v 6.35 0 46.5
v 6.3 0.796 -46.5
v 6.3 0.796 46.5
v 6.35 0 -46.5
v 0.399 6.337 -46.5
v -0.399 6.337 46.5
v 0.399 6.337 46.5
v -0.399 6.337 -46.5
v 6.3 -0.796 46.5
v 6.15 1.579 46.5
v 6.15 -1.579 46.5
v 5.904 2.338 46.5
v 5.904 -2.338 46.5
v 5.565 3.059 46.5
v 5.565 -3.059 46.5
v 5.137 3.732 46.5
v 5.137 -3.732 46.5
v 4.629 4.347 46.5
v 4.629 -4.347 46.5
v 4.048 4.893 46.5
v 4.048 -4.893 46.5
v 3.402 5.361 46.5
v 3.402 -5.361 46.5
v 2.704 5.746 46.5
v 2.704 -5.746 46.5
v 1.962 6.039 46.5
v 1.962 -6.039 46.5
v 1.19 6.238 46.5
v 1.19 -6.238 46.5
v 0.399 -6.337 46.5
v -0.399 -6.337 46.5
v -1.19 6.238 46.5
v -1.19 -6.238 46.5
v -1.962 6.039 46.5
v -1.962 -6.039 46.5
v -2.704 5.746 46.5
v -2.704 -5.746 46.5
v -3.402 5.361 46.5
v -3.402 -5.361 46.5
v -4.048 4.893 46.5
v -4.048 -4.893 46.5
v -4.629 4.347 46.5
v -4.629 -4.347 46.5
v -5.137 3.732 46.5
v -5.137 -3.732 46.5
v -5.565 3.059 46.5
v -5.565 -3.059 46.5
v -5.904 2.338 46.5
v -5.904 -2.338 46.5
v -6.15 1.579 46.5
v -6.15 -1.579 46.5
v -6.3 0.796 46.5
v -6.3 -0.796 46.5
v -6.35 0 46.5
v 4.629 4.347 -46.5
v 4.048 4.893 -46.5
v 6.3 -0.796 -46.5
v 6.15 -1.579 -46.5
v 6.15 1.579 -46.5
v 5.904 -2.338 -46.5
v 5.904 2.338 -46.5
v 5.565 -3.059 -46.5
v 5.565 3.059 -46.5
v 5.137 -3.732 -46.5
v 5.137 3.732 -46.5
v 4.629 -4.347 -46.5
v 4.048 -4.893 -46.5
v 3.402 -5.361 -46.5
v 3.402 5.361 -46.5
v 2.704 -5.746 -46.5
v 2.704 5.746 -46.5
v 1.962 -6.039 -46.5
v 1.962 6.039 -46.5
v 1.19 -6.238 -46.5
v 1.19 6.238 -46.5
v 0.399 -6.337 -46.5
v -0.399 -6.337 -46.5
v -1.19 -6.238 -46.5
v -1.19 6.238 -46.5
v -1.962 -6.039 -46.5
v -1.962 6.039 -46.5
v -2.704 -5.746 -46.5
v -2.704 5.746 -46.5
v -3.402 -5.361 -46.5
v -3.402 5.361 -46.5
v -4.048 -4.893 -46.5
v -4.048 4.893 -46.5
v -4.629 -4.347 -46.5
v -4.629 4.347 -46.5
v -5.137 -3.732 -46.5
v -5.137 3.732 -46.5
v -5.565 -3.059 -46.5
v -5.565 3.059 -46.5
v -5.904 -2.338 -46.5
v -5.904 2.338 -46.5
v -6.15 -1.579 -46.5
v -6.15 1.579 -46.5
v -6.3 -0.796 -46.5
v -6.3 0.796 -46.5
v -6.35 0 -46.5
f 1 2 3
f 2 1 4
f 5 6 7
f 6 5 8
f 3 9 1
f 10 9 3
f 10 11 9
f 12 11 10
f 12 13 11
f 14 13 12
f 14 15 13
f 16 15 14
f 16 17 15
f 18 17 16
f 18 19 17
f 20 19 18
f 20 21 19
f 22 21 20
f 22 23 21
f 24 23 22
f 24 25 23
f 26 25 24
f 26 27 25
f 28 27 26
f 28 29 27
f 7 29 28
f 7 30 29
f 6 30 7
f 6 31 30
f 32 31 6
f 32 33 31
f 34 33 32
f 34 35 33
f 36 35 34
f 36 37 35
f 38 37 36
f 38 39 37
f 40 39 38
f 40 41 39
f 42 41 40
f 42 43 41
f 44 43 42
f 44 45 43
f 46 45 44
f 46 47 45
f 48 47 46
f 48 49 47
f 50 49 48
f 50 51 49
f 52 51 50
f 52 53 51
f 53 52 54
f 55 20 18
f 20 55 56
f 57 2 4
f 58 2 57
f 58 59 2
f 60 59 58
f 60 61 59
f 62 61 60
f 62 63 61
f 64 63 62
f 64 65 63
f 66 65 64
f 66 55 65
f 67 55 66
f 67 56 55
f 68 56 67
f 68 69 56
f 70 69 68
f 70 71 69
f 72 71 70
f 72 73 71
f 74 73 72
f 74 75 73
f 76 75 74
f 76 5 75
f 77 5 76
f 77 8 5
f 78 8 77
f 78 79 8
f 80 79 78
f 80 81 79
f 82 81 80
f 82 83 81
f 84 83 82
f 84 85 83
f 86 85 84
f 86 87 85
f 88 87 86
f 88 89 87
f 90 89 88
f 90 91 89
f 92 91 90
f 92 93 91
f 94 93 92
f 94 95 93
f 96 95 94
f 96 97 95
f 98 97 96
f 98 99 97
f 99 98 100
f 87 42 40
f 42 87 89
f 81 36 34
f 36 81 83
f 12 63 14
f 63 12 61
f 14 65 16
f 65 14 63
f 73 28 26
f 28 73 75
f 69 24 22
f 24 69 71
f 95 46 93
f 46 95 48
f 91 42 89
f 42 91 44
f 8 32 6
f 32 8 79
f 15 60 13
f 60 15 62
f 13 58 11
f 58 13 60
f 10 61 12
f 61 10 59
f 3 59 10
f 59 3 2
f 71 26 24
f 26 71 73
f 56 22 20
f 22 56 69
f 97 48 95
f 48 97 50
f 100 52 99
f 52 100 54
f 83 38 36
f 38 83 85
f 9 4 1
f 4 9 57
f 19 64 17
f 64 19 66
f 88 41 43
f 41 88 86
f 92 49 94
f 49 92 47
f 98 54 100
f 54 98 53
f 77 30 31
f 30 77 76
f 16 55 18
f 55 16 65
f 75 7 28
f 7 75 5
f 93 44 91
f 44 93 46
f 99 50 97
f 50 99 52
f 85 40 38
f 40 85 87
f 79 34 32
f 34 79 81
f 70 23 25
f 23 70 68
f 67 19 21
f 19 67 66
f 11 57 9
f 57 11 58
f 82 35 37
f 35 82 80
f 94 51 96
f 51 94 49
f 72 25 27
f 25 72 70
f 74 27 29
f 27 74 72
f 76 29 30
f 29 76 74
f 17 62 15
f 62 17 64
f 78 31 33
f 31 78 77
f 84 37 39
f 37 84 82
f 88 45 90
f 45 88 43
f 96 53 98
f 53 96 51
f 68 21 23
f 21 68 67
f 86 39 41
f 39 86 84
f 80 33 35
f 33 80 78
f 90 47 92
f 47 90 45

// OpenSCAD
$fn = 50;


difference() {
	union() {
		translate(v = [0, 0, -46.5000000000]) {
			cylinder(h = 93, r = 6.3500000000);
		}
	}
	union() {
		translate(v = [0, 0, -100.0000000000]) {
			cylinder(h = 200, r = 0);
		}
	}
}
